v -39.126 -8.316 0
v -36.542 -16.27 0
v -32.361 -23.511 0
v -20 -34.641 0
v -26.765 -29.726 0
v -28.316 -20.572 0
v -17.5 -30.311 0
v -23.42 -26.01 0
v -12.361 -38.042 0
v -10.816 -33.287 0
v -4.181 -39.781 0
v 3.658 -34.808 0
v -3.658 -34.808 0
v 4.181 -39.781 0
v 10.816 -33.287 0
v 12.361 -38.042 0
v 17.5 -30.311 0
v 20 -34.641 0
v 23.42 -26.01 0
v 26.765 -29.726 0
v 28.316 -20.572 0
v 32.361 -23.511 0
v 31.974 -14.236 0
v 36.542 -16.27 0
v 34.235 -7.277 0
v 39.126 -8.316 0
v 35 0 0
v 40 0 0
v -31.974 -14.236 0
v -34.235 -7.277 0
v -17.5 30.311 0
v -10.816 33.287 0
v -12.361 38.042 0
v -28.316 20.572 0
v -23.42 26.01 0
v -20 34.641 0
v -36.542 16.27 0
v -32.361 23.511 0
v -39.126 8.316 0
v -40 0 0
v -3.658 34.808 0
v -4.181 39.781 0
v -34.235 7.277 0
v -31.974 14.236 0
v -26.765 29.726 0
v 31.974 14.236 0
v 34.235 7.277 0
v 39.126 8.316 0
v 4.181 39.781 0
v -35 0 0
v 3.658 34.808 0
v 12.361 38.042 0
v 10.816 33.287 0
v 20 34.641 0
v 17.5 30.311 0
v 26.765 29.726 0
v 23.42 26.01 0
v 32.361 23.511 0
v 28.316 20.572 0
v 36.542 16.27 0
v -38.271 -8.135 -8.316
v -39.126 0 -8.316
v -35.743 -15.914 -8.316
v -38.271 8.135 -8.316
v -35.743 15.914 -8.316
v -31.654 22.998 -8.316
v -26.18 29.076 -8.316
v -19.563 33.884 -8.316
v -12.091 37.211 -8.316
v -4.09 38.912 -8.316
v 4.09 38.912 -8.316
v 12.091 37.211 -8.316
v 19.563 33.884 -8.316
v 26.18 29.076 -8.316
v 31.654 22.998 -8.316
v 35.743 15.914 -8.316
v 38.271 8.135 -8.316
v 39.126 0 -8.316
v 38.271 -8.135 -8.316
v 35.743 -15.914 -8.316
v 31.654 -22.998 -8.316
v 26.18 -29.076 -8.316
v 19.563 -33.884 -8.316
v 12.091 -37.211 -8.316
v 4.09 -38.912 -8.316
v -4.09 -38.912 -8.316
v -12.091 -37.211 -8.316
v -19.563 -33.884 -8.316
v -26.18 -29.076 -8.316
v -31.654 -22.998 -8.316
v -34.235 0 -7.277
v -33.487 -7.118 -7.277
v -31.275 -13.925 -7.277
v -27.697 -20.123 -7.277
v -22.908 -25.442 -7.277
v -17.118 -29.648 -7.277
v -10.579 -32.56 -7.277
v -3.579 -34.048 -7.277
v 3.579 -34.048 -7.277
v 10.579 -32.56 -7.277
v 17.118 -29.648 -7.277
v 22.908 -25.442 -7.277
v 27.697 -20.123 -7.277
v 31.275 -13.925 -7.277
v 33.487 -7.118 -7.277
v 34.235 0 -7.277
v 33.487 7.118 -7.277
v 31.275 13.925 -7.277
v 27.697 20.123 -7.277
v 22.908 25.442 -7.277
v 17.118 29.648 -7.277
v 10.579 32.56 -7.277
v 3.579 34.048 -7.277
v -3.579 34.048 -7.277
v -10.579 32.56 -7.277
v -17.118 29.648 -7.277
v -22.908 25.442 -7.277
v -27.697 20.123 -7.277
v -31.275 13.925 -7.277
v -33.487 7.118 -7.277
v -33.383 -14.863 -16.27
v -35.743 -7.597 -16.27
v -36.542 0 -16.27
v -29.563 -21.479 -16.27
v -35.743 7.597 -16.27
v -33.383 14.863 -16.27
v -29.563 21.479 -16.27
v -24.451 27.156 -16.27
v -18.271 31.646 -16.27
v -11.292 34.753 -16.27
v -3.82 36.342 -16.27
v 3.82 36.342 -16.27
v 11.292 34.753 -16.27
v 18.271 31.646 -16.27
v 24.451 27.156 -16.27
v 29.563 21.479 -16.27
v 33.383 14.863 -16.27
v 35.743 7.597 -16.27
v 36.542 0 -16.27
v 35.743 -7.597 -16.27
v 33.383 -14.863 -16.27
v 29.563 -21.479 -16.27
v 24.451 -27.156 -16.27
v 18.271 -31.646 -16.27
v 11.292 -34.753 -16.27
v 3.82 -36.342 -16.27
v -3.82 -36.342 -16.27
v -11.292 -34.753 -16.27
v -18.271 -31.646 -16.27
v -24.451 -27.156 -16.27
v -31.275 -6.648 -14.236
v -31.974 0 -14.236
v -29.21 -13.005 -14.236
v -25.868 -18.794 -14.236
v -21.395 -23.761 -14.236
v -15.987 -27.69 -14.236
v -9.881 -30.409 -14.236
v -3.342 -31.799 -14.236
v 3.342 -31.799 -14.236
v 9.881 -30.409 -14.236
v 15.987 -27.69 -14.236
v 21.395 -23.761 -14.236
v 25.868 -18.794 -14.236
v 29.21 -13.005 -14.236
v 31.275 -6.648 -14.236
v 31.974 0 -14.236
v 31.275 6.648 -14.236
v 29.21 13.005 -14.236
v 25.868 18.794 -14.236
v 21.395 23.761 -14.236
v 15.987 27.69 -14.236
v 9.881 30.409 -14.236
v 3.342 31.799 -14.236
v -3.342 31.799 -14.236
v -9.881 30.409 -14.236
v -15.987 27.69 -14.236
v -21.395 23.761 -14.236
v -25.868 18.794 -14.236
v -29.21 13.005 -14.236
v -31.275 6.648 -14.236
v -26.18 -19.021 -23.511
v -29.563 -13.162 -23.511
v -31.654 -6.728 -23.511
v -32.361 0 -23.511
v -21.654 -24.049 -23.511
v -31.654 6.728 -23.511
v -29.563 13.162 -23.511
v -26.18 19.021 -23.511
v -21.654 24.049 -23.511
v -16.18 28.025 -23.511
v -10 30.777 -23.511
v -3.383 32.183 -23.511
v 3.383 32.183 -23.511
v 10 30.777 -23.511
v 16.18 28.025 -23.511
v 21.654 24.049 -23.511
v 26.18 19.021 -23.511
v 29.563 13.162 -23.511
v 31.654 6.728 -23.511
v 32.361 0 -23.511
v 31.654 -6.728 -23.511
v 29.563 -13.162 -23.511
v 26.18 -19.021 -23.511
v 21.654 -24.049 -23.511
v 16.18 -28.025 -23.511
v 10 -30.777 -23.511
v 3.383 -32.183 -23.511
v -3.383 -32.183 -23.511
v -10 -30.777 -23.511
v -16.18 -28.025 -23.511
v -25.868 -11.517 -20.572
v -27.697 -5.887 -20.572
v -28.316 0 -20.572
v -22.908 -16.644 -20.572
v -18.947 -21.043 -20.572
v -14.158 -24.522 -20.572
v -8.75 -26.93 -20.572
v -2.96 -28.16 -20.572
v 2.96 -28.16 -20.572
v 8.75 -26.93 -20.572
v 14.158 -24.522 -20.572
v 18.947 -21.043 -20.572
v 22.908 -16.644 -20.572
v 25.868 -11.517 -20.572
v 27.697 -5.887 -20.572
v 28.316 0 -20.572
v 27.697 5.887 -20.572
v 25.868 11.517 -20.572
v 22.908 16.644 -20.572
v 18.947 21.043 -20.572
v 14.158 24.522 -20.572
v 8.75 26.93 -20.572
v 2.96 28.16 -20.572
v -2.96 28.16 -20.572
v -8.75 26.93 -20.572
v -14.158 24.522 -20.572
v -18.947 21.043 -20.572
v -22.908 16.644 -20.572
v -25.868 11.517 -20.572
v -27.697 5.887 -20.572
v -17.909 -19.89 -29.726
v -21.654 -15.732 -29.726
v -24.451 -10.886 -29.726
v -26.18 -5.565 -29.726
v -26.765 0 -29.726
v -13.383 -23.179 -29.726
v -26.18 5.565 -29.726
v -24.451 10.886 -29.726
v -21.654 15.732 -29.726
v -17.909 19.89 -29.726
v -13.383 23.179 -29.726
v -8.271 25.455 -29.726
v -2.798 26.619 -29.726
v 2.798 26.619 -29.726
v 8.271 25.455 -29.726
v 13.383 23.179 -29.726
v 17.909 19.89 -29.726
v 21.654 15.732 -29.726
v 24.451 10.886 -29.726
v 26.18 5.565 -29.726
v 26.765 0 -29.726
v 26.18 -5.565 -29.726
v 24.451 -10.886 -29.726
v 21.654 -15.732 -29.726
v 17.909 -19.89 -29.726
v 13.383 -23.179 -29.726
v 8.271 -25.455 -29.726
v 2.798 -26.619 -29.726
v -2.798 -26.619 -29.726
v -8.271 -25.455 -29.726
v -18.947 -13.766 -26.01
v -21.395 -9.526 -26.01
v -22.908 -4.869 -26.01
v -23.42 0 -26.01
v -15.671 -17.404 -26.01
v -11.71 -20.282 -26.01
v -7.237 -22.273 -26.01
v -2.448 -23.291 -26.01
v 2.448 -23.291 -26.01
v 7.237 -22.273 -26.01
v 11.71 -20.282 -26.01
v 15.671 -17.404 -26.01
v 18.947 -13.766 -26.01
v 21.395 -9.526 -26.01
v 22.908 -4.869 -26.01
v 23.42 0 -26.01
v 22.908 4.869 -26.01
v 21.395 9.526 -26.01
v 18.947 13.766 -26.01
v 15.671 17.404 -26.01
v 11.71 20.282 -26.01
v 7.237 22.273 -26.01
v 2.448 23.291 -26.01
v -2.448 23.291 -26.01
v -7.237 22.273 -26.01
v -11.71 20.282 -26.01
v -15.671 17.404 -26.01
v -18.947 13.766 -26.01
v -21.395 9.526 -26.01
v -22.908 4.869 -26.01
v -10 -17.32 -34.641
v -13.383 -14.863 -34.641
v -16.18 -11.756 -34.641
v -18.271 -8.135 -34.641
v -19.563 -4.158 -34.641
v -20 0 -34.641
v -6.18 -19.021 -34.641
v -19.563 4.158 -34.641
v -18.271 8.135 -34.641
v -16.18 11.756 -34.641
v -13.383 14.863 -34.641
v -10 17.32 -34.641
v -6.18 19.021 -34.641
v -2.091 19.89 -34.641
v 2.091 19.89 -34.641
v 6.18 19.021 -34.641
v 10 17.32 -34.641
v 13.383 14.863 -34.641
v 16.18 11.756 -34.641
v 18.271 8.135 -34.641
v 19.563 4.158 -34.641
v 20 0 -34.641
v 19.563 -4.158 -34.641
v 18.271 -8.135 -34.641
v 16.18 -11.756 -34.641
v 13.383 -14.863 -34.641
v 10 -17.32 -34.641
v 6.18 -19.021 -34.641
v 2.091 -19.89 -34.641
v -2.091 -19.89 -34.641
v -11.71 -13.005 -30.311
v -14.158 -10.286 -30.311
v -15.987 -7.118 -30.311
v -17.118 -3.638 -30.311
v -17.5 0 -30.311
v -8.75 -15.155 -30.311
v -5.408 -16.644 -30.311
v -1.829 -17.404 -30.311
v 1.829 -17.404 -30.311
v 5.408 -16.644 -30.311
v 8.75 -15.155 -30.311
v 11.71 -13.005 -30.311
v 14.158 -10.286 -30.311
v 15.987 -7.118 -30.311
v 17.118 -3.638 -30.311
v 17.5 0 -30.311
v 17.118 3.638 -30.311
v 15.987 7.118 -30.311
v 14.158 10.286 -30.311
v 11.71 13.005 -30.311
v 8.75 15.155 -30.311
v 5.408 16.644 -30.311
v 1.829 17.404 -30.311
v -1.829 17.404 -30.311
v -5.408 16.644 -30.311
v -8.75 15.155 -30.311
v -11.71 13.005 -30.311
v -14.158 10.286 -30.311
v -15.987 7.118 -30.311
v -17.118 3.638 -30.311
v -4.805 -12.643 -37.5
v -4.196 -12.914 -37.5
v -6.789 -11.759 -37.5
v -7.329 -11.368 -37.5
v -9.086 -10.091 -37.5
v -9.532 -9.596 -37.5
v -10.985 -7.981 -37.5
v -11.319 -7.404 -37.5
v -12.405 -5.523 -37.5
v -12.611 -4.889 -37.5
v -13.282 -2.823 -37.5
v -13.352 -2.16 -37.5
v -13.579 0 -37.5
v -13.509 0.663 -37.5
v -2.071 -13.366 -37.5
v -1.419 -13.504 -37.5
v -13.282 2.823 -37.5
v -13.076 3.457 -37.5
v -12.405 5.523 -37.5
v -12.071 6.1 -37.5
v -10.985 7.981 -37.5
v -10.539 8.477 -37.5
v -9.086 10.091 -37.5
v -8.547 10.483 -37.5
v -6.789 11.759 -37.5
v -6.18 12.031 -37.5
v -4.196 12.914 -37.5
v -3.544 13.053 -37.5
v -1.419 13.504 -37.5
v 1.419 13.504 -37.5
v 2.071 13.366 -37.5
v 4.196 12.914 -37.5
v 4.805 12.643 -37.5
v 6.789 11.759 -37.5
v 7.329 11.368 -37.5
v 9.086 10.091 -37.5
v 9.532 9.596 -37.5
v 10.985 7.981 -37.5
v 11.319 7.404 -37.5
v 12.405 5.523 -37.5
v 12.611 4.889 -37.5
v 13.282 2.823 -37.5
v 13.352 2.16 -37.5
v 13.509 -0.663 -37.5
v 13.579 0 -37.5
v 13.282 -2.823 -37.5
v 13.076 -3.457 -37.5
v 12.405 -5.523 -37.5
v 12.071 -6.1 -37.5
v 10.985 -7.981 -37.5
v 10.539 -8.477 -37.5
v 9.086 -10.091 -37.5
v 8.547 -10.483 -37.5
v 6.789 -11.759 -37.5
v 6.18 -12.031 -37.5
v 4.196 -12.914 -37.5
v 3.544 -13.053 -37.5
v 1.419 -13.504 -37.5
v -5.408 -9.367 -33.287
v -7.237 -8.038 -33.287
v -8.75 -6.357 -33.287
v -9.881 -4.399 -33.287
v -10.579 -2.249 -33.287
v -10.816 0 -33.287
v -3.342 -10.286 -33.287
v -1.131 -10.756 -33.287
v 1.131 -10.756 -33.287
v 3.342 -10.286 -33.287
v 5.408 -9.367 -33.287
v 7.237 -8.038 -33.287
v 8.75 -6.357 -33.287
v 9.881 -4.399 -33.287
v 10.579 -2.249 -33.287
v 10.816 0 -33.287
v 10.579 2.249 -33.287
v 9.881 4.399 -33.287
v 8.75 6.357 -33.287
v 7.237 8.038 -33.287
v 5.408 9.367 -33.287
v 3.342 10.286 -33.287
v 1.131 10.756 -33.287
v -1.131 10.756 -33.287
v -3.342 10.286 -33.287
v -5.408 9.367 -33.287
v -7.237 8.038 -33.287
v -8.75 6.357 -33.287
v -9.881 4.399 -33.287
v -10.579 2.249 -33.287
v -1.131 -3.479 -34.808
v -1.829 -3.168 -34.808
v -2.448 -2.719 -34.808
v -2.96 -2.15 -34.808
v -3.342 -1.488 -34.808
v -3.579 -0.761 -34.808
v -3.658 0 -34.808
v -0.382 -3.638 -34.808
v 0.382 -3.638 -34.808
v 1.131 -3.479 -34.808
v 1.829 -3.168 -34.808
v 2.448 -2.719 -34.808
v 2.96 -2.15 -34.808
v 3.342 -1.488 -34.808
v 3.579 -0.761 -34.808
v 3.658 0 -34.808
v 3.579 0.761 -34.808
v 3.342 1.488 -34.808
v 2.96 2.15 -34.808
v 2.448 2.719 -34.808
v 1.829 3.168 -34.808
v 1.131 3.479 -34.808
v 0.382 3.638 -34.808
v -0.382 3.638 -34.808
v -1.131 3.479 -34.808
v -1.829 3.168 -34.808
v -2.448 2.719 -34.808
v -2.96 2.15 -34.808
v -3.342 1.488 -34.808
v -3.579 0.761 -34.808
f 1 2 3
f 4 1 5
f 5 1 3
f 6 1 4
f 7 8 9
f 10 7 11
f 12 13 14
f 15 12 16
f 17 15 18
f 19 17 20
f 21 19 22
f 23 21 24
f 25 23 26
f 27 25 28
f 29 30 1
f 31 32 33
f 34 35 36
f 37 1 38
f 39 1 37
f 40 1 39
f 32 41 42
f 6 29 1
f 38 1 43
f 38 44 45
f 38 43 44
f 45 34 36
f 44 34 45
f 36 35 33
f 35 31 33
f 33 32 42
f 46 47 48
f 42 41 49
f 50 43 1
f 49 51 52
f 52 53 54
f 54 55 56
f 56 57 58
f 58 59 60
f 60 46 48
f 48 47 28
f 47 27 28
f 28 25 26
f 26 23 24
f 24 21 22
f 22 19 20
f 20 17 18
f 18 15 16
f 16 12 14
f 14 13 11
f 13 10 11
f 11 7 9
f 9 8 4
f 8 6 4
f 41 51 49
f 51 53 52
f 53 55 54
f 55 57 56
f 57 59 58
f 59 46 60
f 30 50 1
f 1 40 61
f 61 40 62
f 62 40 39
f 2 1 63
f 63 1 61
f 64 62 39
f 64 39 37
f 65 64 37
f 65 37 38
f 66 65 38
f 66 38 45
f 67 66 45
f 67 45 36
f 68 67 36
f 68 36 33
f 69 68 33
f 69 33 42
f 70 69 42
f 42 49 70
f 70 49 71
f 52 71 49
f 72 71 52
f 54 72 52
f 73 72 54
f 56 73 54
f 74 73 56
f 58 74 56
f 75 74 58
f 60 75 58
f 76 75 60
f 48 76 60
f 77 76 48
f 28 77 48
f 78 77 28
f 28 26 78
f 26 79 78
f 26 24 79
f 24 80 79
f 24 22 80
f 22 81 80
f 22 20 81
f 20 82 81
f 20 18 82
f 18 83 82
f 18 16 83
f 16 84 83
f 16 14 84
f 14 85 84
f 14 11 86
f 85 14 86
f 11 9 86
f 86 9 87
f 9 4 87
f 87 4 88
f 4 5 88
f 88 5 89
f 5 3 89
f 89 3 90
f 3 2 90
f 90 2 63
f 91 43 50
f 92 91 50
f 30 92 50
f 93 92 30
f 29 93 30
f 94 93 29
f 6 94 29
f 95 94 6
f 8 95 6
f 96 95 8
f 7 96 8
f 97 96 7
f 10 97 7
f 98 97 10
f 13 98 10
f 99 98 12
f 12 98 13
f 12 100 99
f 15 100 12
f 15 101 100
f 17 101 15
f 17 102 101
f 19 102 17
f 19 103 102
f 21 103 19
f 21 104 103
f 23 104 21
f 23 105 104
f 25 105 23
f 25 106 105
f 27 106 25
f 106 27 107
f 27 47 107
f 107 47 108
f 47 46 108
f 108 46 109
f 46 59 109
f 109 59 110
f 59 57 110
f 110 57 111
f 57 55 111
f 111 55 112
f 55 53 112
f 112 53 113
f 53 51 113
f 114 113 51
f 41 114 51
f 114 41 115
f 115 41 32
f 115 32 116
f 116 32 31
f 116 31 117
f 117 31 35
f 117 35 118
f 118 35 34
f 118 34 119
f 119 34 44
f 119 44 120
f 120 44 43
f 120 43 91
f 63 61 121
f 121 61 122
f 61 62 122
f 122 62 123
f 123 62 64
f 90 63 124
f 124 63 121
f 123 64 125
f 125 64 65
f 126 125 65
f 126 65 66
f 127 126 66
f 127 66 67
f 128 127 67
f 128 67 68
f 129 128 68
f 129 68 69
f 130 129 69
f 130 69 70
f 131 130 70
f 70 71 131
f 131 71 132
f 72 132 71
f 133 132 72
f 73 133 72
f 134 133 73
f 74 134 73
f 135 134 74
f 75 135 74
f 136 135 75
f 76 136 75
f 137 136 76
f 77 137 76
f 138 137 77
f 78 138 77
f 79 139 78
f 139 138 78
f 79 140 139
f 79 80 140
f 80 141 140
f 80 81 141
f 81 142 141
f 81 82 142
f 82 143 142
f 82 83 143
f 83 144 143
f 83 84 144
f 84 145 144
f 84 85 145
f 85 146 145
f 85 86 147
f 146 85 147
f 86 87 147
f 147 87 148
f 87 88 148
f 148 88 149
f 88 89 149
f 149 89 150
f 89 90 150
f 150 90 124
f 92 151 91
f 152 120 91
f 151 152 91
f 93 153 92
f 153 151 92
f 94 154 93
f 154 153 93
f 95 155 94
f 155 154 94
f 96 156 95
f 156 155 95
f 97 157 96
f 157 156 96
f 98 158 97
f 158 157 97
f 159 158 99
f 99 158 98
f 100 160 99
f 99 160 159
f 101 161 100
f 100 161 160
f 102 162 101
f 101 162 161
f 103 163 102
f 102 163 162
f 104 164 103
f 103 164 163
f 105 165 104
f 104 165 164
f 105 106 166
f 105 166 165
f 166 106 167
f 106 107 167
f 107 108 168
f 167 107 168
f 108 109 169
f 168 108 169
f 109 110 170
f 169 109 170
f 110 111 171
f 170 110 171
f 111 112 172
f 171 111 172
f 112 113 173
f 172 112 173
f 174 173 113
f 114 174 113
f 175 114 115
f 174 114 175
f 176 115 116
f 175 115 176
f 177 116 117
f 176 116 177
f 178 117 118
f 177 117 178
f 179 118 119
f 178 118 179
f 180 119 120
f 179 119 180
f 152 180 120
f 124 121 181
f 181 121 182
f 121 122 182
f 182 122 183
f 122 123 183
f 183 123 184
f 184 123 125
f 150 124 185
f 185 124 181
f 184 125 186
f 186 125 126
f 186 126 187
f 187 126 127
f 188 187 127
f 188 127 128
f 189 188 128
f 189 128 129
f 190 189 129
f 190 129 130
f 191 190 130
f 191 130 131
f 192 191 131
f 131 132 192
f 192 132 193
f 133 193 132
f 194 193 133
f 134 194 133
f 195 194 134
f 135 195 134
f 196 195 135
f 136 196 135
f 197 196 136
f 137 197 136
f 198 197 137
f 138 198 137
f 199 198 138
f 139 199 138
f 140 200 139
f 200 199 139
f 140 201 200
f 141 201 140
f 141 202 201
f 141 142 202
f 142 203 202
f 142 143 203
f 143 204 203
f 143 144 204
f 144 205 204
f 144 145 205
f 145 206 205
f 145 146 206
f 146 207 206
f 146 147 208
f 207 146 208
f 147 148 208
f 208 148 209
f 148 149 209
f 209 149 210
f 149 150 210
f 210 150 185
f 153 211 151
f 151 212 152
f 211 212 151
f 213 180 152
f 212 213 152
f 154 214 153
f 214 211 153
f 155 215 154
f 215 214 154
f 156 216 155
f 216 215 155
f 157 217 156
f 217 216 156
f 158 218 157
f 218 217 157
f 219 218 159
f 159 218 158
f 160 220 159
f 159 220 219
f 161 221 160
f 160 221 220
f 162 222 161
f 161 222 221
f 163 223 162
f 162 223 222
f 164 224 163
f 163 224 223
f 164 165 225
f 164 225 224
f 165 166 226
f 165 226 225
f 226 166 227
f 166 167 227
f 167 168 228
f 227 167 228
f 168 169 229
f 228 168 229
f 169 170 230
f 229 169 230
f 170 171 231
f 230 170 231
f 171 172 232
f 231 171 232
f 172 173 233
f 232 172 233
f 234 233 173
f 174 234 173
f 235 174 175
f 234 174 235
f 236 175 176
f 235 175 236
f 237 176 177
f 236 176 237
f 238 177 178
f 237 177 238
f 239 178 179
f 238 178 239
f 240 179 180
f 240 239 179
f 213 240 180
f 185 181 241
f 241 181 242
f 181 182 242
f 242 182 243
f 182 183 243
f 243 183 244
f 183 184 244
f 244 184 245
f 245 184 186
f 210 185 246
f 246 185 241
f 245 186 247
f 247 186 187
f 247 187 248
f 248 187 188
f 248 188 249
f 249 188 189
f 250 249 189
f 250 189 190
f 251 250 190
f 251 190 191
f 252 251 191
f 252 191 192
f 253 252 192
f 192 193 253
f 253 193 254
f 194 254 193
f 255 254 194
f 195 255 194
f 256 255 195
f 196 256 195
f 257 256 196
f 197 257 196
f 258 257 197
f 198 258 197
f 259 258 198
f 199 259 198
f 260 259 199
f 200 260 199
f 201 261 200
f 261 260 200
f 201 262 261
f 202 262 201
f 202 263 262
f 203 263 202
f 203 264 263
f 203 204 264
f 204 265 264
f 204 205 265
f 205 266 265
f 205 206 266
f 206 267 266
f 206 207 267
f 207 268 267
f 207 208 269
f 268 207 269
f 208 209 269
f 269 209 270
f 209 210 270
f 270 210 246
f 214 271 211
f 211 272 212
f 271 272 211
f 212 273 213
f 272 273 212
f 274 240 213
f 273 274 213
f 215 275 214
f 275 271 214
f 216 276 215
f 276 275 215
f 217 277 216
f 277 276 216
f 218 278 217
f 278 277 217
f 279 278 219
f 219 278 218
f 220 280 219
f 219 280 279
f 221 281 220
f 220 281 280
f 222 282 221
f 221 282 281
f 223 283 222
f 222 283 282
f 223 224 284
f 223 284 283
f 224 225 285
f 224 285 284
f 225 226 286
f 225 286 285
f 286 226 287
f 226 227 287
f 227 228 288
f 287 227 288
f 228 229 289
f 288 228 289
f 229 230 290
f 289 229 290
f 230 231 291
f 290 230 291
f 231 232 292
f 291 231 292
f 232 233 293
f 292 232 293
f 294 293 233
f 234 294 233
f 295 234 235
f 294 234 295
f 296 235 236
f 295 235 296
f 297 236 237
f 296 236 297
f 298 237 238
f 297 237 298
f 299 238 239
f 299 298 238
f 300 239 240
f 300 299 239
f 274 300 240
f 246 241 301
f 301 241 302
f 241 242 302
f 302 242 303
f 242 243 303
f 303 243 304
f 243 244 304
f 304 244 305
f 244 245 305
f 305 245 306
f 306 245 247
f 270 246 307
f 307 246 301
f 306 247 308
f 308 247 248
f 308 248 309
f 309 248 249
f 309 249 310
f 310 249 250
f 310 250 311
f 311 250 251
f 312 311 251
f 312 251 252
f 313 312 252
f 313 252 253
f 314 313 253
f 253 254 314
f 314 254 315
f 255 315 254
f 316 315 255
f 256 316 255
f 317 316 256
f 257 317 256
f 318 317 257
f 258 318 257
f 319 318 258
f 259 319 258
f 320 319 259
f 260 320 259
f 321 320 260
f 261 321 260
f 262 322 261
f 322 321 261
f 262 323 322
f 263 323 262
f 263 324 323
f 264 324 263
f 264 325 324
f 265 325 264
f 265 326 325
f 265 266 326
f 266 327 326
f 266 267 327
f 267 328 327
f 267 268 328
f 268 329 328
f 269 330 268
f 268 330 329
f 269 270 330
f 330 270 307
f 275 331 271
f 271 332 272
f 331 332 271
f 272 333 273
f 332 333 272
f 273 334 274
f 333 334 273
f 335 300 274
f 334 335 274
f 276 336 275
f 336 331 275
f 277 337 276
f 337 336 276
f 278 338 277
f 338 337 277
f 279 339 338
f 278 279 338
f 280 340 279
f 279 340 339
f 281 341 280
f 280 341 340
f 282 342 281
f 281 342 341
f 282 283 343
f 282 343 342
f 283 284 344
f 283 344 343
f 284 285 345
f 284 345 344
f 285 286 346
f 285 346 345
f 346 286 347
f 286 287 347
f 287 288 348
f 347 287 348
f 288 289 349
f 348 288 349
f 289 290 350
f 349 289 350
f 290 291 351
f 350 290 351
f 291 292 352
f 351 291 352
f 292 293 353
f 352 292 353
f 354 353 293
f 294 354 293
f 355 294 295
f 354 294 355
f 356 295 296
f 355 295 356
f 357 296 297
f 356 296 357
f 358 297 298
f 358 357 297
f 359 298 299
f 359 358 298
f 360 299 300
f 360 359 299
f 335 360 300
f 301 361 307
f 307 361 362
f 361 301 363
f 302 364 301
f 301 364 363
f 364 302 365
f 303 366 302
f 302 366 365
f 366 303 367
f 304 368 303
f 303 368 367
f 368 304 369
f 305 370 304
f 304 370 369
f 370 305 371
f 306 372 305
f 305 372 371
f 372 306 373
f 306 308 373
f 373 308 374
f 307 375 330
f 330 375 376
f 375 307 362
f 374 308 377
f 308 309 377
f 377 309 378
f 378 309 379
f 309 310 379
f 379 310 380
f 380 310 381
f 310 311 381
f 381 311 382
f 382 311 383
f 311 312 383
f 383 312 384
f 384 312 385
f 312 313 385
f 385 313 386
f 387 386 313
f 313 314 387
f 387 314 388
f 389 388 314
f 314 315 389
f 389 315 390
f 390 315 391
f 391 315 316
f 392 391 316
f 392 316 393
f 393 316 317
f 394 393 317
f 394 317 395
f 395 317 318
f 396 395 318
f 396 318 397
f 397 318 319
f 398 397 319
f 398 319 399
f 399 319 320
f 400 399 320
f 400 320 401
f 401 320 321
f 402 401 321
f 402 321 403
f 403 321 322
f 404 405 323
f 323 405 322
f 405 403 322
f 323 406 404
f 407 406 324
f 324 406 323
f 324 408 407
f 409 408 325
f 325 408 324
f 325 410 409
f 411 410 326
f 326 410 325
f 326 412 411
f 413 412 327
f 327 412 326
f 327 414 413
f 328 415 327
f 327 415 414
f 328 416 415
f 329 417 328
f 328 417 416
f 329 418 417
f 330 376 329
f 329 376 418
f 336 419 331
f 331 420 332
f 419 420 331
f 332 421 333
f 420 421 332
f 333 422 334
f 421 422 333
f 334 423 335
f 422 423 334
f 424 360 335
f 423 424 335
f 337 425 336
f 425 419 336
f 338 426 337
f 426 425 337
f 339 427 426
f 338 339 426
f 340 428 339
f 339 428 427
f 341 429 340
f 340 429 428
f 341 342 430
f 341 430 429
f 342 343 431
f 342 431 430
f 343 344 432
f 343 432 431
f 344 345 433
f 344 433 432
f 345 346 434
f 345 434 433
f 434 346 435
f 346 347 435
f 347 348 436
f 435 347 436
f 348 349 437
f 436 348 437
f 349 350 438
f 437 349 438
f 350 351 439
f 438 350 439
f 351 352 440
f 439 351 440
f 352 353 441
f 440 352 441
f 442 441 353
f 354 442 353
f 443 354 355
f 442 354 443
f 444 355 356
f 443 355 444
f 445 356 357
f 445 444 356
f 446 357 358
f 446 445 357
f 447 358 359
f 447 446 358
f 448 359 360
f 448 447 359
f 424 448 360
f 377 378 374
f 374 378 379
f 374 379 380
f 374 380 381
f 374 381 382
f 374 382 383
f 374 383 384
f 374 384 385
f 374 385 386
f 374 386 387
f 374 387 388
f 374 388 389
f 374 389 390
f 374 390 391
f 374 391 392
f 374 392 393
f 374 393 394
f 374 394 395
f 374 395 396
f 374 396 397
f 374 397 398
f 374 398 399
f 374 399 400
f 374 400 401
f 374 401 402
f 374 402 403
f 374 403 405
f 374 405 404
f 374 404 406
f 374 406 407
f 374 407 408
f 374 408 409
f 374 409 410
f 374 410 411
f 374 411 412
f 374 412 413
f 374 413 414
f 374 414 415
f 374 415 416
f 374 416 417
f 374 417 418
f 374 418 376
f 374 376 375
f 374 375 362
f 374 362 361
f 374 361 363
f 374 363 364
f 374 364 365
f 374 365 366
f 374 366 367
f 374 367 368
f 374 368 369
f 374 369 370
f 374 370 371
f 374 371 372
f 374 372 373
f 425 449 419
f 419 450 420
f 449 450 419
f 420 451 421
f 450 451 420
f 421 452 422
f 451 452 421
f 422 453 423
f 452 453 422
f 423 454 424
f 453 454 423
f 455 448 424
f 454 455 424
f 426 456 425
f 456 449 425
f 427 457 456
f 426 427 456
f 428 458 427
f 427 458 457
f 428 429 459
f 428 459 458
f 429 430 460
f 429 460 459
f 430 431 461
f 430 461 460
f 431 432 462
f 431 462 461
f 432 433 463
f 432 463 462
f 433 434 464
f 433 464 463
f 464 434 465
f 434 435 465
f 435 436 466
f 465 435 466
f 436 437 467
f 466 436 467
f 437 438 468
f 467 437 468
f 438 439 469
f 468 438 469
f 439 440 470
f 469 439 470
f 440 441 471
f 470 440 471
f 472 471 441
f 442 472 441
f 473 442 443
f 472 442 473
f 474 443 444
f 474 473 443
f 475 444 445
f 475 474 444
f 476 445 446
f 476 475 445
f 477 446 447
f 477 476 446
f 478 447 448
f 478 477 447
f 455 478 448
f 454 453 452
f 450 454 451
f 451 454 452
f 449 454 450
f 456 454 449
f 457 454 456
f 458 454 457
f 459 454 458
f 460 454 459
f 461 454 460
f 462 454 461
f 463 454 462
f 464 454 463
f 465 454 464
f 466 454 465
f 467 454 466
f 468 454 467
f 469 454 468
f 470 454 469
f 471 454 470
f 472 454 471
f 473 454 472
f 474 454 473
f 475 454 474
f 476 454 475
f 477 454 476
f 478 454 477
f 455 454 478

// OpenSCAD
// A basic bowl...

difference() {
	sphere(40, center=true);
	sphere(35, center=true);
	cylinder(h=60,r=40);
	translate([0,0,-40]) {
		cube([30,30,5],center=true);
	}
}
